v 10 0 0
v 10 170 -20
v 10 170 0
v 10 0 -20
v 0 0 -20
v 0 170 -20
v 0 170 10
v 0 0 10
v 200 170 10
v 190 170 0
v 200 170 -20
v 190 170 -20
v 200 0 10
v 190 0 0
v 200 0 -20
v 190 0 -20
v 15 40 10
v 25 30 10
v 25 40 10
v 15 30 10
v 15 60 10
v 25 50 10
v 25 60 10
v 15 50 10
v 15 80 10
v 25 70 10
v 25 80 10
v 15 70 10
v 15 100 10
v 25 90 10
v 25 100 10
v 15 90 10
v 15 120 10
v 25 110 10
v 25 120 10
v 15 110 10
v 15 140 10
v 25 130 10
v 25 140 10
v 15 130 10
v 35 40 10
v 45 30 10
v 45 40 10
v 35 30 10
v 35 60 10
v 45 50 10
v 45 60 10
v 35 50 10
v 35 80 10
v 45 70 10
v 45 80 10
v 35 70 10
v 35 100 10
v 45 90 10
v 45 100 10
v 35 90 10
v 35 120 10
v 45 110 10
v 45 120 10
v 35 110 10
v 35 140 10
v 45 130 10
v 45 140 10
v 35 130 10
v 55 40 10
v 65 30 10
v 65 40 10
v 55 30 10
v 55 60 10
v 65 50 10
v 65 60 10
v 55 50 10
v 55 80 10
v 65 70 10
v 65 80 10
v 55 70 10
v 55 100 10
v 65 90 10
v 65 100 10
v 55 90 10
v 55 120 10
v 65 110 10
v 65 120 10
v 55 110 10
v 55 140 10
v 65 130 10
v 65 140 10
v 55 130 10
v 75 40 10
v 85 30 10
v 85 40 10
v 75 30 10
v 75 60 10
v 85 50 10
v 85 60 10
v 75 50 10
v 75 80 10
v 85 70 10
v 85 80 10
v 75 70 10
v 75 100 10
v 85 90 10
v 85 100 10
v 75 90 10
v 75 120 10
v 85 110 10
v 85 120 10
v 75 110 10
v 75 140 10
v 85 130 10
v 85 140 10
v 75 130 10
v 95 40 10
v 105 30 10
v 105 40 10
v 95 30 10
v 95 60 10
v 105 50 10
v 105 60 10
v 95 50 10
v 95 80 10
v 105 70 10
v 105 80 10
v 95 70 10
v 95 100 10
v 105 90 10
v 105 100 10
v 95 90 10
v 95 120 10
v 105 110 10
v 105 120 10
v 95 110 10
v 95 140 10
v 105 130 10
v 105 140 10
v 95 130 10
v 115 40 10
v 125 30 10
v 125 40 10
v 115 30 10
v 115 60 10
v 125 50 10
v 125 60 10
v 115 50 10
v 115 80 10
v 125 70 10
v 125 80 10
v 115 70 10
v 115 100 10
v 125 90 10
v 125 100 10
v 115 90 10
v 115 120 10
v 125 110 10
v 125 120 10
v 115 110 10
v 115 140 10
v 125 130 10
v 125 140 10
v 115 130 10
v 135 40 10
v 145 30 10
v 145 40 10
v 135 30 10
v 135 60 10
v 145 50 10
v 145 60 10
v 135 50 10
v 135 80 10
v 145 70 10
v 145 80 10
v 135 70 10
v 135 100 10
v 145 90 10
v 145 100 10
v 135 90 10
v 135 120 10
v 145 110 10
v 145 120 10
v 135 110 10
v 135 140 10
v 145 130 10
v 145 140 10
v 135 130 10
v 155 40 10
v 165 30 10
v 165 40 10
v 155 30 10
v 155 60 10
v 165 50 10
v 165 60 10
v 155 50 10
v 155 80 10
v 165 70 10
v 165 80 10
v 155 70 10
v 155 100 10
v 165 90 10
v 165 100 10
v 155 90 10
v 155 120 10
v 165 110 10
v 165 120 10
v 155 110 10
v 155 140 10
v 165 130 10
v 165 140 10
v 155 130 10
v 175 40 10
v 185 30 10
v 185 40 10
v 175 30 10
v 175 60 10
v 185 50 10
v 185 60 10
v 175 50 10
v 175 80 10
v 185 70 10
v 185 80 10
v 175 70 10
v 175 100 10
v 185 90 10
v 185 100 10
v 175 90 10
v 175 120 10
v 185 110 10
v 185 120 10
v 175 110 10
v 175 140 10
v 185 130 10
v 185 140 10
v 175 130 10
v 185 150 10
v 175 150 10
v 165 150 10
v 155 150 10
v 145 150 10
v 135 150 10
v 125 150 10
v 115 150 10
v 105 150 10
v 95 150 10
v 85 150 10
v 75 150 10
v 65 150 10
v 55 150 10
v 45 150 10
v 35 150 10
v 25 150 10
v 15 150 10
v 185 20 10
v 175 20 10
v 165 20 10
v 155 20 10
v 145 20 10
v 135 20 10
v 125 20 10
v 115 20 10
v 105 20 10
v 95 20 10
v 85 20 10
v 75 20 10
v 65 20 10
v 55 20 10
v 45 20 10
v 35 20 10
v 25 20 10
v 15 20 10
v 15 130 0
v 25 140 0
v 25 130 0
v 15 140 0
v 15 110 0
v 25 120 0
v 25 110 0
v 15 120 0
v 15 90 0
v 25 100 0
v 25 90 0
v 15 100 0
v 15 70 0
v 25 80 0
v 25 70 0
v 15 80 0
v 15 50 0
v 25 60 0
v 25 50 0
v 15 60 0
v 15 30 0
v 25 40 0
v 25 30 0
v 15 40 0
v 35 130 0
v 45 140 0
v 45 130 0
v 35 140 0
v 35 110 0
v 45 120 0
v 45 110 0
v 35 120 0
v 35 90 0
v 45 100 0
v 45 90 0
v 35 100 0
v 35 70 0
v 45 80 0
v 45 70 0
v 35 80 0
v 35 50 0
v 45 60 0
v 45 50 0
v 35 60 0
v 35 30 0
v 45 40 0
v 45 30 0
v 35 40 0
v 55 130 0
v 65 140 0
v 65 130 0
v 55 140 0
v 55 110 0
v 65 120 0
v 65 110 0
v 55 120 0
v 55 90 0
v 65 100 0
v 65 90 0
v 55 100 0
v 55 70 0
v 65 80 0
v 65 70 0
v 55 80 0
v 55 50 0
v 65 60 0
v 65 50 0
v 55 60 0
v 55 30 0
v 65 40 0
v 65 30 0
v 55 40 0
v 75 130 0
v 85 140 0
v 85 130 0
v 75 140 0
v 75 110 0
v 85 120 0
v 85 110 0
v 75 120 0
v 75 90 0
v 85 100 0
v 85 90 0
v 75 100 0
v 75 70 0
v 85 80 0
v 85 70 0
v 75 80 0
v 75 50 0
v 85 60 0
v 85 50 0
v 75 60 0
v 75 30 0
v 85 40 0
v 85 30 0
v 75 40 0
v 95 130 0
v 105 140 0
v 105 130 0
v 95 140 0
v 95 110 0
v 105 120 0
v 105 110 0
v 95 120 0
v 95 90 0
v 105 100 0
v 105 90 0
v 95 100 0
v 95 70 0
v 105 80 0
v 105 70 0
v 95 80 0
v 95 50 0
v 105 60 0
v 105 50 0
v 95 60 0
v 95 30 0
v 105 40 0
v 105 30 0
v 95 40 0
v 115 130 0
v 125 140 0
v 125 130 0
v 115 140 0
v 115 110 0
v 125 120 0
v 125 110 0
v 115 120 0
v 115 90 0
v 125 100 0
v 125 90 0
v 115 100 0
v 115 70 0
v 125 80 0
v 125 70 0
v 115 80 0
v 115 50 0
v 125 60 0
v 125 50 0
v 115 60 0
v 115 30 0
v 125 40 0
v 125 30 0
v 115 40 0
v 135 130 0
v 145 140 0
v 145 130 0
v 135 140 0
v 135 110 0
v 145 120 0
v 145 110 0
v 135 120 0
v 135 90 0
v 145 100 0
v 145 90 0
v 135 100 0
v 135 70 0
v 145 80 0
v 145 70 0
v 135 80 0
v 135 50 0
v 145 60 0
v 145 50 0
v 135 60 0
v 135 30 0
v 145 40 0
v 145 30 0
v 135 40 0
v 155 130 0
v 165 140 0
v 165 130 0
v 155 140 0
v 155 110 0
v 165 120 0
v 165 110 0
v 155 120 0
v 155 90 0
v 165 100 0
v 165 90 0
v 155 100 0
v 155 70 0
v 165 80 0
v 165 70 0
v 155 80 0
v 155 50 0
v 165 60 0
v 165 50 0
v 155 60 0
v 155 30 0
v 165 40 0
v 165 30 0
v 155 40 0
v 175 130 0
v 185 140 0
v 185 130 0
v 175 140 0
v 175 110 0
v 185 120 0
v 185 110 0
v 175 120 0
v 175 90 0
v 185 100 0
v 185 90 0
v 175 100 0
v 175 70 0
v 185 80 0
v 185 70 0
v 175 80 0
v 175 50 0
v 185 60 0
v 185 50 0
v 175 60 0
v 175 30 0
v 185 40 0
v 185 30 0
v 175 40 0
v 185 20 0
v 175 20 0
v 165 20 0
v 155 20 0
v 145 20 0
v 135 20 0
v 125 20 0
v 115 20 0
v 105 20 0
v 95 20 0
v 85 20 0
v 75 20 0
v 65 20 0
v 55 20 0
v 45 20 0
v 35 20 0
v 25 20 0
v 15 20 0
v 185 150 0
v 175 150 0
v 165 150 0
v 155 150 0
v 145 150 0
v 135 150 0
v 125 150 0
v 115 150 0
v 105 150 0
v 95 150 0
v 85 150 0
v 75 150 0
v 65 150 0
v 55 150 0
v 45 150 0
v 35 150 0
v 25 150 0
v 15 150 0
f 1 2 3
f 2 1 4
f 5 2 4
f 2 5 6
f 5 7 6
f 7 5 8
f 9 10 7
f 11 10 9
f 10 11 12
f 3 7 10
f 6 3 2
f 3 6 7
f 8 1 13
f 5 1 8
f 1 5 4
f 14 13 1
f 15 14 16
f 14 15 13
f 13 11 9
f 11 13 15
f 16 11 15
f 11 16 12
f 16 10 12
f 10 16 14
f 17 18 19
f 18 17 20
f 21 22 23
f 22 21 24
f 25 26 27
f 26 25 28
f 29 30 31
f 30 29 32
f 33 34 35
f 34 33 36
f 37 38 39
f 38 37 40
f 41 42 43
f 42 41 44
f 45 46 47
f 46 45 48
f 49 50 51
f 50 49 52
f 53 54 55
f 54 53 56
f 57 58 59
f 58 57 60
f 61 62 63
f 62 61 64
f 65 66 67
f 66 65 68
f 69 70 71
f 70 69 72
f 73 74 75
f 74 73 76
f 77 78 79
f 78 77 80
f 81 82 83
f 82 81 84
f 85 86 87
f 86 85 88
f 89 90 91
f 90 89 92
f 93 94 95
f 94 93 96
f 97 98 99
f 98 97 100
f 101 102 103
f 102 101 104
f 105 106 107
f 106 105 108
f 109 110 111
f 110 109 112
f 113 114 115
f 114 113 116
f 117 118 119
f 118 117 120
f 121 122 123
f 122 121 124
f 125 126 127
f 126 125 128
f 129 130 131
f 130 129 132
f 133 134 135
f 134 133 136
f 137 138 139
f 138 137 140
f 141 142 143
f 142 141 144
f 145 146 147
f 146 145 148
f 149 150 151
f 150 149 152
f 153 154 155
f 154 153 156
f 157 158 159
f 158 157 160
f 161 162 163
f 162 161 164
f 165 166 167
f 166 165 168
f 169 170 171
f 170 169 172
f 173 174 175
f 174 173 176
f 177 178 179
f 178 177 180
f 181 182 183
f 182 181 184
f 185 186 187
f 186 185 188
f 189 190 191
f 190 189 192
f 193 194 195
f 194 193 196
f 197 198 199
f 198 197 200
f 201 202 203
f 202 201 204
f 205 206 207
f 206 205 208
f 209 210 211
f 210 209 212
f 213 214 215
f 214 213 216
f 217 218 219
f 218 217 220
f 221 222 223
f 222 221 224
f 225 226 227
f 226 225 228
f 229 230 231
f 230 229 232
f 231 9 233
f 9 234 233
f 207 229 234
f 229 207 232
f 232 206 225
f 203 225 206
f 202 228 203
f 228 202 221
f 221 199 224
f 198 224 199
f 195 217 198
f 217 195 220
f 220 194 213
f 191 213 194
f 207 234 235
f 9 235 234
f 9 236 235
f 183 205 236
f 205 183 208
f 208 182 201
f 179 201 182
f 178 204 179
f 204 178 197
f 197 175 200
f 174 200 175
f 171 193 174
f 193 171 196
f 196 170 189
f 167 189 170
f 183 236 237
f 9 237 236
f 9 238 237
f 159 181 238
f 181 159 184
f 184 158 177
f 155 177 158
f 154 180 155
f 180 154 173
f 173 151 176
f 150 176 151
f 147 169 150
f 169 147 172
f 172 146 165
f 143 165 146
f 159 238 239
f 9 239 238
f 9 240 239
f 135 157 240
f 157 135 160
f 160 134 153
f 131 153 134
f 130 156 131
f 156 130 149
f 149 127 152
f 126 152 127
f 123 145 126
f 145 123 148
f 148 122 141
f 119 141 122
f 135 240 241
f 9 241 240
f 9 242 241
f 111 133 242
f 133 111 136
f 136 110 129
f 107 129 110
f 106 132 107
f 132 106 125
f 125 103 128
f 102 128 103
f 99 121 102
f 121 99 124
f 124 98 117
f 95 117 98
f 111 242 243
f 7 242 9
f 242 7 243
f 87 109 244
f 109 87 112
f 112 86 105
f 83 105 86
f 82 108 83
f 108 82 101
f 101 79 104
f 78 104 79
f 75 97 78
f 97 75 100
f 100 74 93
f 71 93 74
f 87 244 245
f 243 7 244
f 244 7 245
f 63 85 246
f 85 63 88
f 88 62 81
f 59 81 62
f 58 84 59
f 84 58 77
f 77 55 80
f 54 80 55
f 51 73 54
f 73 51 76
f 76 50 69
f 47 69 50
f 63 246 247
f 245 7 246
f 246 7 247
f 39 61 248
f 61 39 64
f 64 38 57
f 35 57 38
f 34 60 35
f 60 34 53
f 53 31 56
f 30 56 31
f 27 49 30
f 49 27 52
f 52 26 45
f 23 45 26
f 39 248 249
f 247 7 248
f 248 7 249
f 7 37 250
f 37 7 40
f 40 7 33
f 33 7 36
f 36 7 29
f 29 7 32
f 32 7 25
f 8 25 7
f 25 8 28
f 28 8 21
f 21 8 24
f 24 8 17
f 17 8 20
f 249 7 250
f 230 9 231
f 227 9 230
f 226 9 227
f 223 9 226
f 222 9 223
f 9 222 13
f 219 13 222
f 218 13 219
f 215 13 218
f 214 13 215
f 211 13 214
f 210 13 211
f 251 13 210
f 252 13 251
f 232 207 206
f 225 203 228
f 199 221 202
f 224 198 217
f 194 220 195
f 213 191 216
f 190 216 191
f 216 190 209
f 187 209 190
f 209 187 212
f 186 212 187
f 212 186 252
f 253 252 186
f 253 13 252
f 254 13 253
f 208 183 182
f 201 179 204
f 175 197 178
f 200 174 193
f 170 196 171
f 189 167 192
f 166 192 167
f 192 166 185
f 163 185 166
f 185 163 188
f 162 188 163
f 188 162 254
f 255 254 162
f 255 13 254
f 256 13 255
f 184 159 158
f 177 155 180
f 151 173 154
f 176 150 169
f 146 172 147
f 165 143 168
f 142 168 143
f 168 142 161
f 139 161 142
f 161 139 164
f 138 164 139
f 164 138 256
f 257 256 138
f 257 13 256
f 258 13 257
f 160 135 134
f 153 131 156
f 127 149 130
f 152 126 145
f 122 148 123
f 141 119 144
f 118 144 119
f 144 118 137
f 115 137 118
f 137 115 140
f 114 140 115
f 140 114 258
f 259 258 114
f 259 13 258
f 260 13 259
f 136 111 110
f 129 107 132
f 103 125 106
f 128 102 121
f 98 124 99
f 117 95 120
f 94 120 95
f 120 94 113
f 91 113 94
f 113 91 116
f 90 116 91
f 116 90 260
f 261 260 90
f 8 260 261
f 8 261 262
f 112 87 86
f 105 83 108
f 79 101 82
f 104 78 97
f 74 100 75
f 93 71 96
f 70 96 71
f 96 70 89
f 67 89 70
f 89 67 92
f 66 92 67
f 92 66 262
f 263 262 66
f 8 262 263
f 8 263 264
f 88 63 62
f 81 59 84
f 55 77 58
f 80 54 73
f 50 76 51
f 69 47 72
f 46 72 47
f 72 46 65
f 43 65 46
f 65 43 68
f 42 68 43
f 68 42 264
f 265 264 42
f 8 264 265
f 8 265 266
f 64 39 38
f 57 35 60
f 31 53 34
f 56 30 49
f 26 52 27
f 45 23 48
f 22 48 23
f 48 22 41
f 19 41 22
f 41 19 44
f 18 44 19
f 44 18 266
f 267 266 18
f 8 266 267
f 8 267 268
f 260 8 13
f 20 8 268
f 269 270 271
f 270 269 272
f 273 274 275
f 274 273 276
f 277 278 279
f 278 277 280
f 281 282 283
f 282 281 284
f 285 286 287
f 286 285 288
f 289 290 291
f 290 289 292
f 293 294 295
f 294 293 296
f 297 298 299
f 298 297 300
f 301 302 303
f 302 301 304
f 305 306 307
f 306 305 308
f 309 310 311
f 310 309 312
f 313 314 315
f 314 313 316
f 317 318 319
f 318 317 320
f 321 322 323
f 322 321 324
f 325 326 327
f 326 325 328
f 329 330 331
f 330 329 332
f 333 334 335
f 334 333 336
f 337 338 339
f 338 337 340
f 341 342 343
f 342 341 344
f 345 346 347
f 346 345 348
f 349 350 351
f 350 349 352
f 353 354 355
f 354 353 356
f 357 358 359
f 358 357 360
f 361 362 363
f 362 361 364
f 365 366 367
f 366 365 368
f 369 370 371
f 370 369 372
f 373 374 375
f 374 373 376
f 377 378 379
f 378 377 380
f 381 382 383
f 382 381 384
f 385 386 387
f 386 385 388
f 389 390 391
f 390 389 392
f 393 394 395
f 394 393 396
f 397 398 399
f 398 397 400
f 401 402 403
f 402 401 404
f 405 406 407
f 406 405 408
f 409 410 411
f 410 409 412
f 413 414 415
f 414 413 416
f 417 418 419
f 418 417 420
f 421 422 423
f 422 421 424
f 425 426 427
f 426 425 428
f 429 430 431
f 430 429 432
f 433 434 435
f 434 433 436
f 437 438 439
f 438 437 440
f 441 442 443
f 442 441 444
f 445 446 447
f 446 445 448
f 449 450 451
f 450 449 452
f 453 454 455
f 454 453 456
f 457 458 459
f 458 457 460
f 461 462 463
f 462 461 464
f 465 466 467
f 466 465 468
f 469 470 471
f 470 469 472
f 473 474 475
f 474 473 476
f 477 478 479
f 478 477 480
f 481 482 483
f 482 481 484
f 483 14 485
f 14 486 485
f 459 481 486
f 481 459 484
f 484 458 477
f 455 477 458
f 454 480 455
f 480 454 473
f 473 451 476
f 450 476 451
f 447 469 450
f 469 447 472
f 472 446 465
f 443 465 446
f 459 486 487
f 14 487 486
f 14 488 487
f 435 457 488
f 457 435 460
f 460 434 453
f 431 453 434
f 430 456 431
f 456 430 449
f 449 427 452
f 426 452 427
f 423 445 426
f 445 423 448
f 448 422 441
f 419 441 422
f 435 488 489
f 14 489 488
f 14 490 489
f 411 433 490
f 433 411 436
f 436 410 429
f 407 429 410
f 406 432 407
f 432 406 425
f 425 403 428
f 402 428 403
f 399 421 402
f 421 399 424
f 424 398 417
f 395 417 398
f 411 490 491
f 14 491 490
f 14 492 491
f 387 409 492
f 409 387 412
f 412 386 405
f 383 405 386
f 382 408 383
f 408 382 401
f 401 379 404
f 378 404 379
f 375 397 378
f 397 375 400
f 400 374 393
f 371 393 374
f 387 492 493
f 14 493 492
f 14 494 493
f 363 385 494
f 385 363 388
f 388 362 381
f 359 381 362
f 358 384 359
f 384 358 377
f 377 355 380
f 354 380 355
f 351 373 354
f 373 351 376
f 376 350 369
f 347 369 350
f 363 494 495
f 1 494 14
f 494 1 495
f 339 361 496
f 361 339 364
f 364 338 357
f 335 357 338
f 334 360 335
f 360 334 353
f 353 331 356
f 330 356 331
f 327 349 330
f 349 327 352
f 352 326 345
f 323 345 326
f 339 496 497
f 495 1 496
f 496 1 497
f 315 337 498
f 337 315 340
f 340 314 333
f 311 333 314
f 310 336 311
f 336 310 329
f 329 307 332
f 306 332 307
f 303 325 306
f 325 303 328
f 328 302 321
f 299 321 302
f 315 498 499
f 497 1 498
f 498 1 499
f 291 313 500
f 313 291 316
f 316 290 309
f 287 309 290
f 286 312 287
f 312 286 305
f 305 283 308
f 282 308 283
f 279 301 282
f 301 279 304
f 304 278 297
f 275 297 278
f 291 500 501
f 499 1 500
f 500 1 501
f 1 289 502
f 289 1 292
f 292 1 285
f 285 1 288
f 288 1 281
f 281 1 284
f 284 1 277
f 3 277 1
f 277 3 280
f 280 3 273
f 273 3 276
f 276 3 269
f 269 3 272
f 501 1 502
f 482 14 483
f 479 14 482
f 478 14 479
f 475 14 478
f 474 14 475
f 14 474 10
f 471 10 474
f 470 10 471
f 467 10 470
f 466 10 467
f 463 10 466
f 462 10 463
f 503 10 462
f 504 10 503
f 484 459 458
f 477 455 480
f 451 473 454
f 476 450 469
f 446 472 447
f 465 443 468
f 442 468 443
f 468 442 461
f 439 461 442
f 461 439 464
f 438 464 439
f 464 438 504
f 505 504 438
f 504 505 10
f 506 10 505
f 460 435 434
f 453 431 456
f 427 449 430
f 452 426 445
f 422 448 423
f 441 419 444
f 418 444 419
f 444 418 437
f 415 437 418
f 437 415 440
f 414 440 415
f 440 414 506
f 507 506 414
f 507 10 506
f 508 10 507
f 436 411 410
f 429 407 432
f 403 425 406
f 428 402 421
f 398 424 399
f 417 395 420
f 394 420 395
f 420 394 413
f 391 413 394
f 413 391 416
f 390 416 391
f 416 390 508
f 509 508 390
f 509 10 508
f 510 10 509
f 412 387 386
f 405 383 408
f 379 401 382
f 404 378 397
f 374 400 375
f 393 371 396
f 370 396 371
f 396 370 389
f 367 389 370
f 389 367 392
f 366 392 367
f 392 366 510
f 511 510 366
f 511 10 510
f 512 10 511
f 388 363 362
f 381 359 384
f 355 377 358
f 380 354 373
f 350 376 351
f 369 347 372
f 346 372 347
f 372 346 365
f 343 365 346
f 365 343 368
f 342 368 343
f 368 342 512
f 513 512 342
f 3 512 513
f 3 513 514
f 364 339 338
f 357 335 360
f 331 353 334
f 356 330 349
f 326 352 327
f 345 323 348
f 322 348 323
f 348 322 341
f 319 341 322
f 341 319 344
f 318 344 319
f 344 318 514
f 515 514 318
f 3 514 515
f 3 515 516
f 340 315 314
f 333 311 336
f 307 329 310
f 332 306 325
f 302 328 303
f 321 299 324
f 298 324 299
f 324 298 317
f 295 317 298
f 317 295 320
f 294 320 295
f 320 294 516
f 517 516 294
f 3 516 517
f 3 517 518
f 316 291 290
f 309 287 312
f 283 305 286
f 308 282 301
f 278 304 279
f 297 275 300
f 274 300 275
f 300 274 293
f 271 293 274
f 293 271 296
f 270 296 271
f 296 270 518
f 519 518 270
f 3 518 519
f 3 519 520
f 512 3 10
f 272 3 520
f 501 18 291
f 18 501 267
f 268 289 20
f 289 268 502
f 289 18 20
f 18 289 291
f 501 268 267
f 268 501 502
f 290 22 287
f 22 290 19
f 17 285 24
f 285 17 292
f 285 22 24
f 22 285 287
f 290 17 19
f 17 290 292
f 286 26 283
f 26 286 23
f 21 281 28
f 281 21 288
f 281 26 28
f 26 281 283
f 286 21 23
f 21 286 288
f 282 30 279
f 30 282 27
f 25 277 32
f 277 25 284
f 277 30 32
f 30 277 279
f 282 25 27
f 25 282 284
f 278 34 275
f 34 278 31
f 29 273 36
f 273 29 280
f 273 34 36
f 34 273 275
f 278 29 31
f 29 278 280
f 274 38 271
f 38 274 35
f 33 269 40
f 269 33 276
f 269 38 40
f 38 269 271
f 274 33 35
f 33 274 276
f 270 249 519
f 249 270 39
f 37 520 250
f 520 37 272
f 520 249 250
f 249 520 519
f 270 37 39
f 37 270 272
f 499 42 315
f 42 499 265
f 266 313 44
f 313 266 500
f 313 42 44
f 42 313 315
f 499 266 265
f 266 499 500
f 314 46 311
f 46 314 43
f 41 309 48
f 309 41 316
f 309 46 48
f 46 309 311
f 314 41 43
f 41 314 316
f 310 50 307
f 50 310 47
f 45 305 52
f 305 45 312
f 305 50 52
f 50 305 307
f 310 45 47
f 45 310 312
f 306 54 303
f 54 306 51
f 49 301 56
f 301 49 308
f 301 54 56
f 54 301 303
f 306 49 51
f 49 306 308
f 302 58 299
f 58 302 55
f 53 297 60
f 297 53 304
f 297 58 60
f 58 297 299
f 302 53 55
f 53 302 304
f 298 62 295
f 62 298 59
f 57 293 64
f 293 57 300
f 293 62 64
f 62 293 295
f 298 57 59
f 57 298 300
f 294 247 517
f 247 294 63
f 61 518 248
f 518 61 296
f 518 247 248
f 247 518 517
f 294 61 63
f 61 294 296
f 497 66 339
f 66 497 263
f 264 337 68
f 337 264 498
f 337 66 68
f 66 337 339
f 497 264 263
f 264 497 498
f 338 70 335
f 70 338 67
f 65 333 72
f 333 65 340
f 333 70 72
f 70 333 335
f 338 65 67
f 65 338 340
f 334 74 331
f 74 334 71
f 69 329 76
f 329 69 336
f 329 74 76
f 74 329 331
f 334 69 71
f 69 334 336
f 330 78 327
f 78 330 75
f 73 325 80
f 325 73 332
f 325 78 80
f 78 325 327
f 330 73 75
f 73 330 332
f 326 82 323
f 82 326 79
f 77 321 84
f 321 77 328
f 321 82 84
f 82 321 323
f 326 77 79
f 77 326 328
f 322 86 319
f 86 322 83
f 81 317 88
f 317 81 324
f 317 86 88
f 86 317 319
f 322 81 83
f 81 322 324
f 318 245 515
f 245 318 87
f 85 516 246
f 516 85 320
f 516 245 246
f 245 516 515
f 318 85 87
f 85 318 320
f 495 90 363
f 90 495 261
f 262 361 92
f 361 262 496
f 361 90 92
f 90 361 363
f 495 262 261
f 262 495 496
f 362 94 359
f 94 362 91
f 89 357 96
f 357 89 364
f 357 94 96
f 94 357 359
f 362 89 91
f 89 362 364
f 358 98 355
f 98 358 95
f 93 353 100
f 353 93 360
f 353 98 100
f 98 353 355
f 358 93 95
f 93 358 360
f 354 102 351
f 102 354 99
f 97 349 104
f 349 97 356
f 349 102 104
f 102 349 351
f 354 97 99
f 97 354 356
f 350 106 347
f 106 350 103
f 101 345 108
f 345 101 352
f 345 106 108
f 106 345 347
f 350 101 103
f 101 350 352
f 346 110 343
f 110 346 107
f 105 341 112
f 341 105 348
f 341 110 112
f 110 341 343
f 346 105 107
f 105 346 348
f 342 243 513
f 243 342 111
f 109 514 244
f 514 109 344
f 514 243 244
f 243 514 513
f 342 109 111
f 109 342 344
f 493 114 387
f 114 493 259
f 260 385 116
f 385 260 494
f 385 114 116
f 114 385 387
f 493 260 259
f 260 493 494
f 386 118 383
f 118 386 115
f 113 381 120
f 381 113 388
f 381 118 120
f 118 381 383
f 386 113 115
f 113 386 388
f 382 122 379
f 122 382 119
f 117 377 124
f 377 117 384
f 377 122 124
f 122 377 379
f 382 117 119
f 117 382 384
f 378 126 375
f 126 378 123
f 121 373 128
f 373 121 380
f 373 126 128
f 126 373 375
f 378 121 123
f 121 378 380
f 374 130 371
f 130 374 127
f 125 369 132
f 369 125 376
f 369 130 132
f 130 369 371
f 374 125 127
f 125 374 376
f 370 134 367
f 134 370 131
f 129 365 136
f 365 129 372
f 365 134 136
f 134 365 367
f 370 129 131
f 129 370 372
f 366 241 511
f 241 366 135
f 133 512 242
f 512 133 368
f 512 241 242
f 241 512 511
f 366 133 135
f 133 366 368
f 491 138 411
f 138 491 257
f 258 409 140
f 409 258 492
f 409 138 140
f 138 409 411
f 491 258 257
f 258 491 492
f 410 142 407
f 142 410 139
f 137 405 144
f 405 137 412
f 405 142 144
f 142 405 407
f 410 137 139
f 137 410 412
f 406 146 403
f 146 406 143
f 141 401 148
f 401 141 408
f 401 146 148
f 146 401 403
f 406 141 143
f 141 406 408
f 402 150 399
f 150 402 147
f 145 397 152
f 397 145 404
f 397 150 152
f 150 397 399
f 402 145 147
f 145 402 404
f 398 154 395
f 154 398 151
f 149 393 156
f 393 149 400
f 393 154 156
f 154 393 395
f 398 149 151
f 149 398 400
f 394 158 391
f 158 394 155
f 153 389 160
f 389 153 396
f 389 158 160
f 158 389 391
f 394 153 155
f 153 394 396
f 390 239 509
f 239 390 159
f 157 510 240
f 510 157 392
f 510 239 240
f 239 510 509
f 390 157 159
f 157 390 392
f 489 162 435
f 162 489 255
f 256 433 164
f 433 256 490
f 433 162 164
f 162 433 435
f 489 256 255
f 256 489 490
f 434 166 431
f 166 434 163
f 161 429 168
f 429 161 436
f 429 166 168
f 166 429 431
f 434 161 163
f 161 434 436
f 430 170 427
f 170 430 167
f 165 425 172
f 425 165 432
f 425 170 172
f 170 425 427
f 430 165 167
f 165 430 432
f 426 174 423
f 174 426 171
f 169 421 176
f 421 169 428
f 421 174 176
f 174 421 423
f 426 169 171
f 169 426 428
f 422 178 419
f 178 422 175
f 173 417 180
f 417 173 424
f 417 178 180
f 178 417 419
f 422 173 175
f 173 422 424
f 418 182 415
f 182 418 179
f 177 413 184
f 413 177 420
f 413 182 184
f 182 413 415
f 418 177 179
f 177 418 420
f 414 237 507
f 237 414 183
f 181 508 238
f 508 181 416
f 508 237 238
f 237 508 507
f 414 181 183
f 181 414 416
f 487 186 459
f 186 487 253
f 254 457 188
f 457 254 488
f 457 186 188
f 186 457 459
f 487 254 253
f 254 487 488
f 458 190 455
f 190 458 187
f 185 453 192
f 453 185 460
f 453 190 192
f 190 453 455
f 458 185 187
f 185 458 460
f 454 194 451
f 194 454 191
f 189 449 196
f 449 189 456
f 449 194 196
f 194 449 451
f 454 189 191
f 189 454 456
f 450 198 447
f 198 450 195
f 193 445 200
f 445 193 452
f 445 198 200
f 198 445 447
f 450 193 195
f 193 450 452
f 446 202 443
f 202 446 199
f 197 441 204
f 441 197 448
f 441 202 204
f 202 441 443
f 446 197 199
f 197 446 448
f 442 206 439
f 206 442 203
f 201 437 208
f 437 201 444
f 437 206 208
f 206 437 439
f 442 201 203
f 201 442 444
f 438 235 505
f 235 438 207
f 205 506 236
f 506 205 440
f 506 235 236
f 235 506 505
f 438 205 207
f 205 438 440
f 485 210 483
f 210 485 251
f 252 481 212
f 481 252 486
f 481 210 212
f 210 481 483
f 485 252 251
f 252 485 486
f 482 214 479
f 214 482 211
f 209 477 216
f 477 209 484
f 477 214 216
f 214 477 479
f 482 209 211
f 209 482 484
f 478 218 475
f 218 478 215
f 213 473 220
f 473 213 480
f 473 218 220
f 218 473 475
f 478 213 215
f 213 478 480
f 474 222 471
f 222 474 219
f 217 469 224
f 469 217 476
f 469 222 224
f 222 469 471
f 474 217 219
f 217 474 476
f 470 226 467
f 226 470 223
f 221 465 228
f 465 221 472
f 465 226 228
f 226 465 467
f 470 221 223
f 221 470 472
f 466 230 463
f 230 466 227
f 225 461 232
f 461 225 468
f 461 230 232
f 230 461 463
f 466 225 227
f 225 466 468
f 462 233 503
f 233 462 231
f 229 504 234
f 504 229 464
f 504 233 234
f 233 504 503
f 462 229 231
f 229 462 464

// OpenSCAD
module base(){

	cube([200, 170, 10]);

	for(i=[0, 190]){

		translate([i, 0, -20]){

			#cube([10, 170, 25]);

		}

	}

}

module hole(){

	for(i=[15:20:180], j=[20:20:150]){

		translate([i, j, -10]){

			cube([10, 10, 30]);

		}

	}

}

difference(){

	base();
	hole();

}
